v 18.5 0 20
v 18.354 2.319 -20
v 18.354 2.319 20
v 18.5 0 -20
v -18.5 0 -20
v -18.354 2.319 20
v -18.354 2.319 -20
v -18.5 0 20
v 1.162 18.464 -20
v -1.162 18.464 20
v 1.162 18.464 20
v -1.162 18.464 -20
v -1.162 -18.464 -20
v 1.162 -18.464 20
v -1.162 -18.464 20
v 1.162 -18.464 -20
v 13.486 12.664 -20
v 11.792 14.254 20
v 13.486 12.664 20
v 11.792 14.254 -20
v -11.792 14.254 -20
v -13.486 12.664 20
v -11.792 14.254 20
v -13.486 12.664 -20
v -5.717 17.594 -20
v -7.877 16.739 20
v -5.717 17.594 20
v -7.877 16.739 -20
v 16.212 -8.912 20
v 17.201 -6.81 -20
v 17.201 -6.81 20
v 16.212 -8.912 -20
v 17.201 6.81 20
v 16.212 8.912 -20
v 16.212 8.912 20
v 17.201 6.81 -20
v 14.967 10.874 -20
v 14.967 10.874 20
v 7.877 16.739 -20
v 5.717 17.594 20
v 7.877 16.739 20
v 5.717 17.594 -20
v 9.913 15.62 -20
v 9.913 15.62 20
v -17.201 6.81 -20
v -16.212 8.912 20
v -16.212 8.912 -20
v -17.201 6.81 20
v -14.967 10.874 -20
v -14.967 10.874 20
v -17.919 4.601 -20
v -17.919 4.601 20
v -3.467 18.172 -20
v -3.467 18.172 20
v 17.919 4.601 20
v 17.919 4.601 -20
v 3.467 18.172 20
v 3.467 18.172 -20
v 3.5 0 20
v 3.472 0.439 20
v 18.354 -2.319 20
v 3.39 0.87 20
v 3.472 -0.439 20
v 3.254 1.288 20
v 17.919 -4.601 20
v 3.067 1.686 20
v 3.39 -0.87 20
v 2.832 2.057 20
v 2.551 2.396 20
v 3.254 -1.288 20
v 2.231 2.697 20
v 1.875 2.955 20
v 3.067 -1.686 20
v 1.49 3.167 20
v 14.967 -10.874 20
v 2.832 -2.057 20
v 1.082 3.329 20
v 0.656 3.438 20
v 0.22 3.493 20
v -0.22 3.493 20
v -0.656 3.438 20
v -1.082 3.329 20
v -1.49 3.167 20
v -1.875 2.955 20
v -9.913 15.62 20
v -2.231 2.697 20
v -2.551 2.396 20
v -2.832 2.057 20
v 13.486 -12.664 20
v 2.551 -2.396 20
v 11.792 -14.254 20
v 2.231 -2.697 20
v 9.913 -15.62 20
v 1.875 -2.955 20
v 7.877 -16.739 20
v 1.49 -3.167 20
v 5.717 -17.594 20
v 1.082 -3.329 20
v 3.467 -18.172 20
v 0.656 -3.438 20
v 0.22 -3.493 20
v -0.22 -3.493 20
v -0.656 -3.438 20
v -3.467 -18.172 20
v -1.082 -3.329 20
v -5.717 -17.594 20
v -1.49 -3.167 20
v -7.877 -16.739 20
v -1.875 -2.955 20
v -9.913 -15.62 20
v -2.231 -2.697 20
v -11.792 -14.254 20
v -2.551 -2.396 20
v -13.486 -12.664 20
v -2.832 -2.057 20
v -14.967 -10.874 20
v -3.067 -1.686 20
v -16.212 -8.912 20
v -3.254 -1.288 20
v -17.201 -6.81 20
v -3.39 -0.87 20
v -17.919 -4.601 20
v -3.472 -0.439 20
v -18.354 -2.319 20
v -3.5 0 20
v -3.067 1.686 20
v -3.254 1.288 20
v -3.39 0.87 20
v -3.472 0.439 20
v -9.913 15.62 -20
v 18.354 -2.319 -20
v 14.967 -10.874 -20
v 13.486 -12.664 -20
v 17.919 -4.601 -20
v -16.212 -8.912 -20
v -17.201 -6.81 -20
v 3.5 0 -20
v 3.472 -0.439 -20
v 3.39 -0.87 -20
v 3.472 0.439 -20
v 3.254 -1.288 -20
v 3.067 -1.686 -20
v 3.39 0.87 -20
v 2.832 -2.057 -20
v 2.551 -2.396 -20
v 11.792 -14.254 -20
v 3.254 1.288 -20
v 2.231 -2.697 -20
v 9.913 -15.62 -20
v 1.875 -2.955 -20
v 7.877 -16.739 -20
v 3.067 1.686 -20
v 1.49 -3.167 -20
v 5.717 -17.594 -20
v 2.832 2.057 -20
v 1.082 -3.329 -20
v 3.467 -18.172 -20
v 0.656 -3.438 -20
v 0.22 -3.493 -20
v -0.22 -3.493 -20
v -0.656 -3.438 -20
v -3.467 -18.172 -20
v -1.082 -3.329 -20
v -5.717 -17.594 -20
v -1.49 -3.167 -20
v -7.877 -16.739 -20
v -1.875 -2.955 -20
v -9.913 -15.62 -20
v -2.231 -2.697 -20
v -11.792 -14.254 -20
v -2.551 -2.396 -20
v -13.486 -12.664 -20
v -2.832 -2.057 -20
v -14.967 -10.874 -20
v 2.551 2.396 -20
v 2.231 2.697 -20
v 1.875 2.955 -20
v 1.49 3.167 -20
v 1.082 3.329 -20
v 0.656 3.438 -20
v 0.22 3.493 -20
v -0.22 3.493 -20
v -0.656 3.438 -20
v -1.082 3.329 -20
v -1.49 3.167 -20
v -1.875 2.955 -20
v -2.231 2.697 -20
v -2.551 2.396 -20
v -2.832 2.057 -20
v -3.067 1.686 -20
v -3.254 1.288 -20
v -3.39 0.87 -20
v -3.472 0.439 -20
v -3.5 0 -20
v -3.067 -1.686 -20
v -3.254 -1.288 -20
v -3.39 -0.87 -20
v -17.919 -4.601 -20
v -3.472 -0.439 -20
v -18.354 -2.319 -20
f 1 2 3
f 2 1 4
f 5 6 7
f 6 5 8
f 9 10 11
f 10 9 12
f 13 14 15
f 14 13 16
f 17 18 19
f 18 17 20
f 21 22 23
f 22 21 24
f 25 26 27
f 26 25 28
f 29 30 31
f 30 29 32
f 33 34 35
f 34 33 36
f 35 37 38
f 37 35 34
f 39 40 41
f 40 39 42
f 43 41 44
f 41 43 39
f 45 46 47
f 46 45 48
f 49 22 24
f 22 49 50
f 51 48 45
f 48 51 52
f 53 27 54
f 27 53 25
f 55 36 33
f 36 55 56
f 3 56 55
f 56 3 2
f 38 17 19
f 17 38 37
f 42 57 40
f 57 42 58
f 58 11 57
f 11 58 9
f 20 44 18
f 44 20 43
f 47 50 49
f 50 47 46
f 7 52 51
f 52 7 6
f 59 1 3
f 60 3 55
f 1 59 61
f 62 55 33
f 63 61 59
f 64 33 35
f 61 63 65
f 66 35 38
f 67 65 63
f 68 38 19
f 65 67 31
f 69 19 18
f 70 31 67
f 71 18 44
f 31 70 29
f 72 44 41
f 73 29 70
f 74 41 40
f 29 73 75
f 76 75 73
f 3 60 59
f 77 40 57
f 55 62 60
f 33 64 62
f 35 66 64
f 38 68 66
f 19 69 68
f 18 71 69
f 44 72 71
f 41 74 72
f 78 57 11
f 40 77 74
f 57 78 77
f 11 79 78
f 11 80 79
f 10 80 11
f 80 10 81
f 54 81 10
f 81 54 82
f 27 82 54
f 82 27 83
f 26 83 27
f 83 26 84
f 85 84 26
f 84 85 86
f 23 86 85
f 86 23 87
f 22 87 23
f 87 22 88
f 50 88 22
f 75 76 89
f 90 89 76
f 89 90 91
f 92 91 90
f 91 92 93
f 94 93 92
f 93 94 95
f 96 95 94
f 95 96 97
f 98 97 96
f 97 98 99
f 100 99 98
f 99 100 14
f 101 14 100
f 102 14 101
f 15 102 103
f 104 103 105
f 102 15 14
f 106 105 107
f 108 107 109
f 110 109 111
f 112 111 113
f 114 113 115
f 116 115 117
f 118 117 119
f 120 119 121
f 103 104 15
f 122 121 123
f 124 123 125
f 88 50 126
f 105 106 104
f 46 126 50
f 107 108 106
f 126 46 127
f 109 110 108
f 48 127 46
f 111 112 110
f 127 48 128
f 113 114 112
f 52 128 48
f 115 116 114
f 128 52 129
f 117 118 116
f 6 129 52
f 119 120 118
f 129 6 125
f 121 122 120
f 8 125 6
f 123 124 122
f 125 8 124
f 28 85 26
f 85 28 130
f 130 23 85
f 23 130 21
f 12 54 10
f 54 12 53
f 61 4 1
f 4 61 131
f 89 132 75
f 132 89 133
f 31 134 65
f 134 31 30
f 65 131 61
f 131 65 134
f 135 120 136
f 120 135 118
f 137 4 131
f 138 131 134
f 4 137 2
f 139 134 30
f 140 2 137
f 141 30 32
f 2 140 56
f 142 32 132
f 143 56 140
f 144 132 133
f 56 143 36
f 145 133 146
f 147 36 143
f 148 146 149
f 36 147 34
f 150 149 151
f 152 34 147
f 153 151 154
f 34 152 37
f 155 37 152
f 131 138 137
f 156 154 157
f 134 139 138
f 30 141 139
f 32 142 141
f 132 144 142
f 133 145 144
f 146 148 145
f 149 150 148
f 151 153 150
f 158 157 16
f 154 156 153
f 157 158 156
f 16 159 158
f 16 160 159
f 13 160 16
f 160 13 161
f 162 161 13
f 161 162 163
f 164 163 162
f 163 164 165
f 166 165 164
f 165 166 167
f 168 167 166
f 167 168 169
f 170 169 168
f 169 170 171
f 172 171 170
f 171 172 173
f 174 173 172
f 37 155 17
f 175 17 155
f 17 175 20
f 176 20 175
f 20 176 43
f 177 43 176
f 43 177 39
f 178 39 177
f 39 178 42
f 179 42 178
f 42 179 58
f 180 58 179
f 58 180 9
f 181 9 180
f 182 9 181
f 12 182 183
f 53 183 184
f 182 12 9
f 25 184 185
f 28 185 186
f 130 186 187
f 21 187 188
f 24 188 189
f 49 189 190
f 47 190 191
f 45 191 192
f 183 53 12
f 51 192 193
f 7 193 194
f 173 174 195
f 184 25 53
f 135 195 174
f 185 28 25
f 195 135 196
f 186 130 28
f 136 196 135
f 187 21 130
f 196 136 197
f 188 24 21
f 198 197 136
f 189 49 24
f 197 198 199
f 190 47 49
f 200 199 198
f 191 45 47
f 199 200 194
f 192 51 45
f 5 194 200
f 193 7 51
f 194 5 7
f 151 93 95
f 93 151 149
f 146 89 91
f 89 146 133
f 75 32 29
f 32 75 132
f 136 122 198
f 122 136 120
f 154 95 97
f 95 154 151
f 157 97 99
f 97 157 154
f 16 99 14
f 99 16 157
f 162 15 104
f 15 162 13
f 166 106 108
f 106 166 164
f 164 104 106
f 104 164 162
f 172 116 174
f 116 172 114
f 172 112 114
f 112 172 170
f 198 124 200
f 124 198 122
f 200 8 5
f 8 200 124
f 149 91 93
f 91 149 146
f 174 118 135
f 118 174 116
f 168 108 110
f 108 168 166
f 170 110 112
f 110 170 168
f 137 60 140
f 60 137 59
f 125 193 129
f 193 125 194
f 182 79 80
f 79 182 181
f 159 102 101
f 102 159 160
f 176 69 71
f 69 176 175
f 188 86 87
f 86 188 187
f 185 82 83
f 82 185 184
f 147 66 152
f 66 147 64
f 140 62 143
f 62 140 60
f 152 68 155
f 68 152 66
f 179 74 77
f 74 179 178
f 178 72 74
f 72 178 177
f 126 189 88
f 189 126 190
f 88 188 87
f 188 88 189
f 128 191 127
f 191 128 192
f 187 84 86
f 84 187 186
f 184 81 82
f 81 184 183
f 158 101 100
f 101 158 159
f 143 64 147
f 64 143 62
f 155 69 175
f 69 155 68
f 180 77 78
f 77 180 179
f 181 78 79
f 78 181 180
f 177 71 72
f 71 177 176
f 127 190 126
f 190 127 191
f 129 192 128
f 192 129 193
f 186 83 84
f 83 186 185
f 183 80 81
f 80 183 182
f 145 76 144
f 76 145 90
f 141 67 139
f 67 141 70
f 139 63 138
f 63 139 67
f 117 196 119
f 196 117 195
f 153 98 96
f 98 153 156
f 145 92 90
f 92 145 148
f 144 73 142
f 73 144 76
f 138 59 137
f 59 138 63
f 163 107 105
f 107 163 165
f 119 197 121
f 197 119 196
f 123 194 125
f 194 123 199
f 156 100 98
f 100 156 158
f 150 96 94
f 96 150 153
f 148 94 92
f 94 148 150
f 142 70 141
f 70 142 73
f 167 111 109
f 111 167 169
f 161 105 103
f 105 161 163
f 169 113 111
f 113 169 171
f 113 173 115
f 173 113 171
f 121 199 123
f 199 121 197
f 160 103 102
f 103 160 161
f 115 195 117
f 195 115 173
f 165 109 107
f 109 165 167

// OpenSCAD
$fn = 50;


difference() {
	union() {
		translate(v = [0, 0, -20.0000000000]) {
			cylinder(h = 40, r = 18.5000000000);
		}
	}
	union() {
		translate(v = [0, 0, -100.0000000000]) {
			cylinder(h = 200, r = 3.5000000000);
		}
	}
}
